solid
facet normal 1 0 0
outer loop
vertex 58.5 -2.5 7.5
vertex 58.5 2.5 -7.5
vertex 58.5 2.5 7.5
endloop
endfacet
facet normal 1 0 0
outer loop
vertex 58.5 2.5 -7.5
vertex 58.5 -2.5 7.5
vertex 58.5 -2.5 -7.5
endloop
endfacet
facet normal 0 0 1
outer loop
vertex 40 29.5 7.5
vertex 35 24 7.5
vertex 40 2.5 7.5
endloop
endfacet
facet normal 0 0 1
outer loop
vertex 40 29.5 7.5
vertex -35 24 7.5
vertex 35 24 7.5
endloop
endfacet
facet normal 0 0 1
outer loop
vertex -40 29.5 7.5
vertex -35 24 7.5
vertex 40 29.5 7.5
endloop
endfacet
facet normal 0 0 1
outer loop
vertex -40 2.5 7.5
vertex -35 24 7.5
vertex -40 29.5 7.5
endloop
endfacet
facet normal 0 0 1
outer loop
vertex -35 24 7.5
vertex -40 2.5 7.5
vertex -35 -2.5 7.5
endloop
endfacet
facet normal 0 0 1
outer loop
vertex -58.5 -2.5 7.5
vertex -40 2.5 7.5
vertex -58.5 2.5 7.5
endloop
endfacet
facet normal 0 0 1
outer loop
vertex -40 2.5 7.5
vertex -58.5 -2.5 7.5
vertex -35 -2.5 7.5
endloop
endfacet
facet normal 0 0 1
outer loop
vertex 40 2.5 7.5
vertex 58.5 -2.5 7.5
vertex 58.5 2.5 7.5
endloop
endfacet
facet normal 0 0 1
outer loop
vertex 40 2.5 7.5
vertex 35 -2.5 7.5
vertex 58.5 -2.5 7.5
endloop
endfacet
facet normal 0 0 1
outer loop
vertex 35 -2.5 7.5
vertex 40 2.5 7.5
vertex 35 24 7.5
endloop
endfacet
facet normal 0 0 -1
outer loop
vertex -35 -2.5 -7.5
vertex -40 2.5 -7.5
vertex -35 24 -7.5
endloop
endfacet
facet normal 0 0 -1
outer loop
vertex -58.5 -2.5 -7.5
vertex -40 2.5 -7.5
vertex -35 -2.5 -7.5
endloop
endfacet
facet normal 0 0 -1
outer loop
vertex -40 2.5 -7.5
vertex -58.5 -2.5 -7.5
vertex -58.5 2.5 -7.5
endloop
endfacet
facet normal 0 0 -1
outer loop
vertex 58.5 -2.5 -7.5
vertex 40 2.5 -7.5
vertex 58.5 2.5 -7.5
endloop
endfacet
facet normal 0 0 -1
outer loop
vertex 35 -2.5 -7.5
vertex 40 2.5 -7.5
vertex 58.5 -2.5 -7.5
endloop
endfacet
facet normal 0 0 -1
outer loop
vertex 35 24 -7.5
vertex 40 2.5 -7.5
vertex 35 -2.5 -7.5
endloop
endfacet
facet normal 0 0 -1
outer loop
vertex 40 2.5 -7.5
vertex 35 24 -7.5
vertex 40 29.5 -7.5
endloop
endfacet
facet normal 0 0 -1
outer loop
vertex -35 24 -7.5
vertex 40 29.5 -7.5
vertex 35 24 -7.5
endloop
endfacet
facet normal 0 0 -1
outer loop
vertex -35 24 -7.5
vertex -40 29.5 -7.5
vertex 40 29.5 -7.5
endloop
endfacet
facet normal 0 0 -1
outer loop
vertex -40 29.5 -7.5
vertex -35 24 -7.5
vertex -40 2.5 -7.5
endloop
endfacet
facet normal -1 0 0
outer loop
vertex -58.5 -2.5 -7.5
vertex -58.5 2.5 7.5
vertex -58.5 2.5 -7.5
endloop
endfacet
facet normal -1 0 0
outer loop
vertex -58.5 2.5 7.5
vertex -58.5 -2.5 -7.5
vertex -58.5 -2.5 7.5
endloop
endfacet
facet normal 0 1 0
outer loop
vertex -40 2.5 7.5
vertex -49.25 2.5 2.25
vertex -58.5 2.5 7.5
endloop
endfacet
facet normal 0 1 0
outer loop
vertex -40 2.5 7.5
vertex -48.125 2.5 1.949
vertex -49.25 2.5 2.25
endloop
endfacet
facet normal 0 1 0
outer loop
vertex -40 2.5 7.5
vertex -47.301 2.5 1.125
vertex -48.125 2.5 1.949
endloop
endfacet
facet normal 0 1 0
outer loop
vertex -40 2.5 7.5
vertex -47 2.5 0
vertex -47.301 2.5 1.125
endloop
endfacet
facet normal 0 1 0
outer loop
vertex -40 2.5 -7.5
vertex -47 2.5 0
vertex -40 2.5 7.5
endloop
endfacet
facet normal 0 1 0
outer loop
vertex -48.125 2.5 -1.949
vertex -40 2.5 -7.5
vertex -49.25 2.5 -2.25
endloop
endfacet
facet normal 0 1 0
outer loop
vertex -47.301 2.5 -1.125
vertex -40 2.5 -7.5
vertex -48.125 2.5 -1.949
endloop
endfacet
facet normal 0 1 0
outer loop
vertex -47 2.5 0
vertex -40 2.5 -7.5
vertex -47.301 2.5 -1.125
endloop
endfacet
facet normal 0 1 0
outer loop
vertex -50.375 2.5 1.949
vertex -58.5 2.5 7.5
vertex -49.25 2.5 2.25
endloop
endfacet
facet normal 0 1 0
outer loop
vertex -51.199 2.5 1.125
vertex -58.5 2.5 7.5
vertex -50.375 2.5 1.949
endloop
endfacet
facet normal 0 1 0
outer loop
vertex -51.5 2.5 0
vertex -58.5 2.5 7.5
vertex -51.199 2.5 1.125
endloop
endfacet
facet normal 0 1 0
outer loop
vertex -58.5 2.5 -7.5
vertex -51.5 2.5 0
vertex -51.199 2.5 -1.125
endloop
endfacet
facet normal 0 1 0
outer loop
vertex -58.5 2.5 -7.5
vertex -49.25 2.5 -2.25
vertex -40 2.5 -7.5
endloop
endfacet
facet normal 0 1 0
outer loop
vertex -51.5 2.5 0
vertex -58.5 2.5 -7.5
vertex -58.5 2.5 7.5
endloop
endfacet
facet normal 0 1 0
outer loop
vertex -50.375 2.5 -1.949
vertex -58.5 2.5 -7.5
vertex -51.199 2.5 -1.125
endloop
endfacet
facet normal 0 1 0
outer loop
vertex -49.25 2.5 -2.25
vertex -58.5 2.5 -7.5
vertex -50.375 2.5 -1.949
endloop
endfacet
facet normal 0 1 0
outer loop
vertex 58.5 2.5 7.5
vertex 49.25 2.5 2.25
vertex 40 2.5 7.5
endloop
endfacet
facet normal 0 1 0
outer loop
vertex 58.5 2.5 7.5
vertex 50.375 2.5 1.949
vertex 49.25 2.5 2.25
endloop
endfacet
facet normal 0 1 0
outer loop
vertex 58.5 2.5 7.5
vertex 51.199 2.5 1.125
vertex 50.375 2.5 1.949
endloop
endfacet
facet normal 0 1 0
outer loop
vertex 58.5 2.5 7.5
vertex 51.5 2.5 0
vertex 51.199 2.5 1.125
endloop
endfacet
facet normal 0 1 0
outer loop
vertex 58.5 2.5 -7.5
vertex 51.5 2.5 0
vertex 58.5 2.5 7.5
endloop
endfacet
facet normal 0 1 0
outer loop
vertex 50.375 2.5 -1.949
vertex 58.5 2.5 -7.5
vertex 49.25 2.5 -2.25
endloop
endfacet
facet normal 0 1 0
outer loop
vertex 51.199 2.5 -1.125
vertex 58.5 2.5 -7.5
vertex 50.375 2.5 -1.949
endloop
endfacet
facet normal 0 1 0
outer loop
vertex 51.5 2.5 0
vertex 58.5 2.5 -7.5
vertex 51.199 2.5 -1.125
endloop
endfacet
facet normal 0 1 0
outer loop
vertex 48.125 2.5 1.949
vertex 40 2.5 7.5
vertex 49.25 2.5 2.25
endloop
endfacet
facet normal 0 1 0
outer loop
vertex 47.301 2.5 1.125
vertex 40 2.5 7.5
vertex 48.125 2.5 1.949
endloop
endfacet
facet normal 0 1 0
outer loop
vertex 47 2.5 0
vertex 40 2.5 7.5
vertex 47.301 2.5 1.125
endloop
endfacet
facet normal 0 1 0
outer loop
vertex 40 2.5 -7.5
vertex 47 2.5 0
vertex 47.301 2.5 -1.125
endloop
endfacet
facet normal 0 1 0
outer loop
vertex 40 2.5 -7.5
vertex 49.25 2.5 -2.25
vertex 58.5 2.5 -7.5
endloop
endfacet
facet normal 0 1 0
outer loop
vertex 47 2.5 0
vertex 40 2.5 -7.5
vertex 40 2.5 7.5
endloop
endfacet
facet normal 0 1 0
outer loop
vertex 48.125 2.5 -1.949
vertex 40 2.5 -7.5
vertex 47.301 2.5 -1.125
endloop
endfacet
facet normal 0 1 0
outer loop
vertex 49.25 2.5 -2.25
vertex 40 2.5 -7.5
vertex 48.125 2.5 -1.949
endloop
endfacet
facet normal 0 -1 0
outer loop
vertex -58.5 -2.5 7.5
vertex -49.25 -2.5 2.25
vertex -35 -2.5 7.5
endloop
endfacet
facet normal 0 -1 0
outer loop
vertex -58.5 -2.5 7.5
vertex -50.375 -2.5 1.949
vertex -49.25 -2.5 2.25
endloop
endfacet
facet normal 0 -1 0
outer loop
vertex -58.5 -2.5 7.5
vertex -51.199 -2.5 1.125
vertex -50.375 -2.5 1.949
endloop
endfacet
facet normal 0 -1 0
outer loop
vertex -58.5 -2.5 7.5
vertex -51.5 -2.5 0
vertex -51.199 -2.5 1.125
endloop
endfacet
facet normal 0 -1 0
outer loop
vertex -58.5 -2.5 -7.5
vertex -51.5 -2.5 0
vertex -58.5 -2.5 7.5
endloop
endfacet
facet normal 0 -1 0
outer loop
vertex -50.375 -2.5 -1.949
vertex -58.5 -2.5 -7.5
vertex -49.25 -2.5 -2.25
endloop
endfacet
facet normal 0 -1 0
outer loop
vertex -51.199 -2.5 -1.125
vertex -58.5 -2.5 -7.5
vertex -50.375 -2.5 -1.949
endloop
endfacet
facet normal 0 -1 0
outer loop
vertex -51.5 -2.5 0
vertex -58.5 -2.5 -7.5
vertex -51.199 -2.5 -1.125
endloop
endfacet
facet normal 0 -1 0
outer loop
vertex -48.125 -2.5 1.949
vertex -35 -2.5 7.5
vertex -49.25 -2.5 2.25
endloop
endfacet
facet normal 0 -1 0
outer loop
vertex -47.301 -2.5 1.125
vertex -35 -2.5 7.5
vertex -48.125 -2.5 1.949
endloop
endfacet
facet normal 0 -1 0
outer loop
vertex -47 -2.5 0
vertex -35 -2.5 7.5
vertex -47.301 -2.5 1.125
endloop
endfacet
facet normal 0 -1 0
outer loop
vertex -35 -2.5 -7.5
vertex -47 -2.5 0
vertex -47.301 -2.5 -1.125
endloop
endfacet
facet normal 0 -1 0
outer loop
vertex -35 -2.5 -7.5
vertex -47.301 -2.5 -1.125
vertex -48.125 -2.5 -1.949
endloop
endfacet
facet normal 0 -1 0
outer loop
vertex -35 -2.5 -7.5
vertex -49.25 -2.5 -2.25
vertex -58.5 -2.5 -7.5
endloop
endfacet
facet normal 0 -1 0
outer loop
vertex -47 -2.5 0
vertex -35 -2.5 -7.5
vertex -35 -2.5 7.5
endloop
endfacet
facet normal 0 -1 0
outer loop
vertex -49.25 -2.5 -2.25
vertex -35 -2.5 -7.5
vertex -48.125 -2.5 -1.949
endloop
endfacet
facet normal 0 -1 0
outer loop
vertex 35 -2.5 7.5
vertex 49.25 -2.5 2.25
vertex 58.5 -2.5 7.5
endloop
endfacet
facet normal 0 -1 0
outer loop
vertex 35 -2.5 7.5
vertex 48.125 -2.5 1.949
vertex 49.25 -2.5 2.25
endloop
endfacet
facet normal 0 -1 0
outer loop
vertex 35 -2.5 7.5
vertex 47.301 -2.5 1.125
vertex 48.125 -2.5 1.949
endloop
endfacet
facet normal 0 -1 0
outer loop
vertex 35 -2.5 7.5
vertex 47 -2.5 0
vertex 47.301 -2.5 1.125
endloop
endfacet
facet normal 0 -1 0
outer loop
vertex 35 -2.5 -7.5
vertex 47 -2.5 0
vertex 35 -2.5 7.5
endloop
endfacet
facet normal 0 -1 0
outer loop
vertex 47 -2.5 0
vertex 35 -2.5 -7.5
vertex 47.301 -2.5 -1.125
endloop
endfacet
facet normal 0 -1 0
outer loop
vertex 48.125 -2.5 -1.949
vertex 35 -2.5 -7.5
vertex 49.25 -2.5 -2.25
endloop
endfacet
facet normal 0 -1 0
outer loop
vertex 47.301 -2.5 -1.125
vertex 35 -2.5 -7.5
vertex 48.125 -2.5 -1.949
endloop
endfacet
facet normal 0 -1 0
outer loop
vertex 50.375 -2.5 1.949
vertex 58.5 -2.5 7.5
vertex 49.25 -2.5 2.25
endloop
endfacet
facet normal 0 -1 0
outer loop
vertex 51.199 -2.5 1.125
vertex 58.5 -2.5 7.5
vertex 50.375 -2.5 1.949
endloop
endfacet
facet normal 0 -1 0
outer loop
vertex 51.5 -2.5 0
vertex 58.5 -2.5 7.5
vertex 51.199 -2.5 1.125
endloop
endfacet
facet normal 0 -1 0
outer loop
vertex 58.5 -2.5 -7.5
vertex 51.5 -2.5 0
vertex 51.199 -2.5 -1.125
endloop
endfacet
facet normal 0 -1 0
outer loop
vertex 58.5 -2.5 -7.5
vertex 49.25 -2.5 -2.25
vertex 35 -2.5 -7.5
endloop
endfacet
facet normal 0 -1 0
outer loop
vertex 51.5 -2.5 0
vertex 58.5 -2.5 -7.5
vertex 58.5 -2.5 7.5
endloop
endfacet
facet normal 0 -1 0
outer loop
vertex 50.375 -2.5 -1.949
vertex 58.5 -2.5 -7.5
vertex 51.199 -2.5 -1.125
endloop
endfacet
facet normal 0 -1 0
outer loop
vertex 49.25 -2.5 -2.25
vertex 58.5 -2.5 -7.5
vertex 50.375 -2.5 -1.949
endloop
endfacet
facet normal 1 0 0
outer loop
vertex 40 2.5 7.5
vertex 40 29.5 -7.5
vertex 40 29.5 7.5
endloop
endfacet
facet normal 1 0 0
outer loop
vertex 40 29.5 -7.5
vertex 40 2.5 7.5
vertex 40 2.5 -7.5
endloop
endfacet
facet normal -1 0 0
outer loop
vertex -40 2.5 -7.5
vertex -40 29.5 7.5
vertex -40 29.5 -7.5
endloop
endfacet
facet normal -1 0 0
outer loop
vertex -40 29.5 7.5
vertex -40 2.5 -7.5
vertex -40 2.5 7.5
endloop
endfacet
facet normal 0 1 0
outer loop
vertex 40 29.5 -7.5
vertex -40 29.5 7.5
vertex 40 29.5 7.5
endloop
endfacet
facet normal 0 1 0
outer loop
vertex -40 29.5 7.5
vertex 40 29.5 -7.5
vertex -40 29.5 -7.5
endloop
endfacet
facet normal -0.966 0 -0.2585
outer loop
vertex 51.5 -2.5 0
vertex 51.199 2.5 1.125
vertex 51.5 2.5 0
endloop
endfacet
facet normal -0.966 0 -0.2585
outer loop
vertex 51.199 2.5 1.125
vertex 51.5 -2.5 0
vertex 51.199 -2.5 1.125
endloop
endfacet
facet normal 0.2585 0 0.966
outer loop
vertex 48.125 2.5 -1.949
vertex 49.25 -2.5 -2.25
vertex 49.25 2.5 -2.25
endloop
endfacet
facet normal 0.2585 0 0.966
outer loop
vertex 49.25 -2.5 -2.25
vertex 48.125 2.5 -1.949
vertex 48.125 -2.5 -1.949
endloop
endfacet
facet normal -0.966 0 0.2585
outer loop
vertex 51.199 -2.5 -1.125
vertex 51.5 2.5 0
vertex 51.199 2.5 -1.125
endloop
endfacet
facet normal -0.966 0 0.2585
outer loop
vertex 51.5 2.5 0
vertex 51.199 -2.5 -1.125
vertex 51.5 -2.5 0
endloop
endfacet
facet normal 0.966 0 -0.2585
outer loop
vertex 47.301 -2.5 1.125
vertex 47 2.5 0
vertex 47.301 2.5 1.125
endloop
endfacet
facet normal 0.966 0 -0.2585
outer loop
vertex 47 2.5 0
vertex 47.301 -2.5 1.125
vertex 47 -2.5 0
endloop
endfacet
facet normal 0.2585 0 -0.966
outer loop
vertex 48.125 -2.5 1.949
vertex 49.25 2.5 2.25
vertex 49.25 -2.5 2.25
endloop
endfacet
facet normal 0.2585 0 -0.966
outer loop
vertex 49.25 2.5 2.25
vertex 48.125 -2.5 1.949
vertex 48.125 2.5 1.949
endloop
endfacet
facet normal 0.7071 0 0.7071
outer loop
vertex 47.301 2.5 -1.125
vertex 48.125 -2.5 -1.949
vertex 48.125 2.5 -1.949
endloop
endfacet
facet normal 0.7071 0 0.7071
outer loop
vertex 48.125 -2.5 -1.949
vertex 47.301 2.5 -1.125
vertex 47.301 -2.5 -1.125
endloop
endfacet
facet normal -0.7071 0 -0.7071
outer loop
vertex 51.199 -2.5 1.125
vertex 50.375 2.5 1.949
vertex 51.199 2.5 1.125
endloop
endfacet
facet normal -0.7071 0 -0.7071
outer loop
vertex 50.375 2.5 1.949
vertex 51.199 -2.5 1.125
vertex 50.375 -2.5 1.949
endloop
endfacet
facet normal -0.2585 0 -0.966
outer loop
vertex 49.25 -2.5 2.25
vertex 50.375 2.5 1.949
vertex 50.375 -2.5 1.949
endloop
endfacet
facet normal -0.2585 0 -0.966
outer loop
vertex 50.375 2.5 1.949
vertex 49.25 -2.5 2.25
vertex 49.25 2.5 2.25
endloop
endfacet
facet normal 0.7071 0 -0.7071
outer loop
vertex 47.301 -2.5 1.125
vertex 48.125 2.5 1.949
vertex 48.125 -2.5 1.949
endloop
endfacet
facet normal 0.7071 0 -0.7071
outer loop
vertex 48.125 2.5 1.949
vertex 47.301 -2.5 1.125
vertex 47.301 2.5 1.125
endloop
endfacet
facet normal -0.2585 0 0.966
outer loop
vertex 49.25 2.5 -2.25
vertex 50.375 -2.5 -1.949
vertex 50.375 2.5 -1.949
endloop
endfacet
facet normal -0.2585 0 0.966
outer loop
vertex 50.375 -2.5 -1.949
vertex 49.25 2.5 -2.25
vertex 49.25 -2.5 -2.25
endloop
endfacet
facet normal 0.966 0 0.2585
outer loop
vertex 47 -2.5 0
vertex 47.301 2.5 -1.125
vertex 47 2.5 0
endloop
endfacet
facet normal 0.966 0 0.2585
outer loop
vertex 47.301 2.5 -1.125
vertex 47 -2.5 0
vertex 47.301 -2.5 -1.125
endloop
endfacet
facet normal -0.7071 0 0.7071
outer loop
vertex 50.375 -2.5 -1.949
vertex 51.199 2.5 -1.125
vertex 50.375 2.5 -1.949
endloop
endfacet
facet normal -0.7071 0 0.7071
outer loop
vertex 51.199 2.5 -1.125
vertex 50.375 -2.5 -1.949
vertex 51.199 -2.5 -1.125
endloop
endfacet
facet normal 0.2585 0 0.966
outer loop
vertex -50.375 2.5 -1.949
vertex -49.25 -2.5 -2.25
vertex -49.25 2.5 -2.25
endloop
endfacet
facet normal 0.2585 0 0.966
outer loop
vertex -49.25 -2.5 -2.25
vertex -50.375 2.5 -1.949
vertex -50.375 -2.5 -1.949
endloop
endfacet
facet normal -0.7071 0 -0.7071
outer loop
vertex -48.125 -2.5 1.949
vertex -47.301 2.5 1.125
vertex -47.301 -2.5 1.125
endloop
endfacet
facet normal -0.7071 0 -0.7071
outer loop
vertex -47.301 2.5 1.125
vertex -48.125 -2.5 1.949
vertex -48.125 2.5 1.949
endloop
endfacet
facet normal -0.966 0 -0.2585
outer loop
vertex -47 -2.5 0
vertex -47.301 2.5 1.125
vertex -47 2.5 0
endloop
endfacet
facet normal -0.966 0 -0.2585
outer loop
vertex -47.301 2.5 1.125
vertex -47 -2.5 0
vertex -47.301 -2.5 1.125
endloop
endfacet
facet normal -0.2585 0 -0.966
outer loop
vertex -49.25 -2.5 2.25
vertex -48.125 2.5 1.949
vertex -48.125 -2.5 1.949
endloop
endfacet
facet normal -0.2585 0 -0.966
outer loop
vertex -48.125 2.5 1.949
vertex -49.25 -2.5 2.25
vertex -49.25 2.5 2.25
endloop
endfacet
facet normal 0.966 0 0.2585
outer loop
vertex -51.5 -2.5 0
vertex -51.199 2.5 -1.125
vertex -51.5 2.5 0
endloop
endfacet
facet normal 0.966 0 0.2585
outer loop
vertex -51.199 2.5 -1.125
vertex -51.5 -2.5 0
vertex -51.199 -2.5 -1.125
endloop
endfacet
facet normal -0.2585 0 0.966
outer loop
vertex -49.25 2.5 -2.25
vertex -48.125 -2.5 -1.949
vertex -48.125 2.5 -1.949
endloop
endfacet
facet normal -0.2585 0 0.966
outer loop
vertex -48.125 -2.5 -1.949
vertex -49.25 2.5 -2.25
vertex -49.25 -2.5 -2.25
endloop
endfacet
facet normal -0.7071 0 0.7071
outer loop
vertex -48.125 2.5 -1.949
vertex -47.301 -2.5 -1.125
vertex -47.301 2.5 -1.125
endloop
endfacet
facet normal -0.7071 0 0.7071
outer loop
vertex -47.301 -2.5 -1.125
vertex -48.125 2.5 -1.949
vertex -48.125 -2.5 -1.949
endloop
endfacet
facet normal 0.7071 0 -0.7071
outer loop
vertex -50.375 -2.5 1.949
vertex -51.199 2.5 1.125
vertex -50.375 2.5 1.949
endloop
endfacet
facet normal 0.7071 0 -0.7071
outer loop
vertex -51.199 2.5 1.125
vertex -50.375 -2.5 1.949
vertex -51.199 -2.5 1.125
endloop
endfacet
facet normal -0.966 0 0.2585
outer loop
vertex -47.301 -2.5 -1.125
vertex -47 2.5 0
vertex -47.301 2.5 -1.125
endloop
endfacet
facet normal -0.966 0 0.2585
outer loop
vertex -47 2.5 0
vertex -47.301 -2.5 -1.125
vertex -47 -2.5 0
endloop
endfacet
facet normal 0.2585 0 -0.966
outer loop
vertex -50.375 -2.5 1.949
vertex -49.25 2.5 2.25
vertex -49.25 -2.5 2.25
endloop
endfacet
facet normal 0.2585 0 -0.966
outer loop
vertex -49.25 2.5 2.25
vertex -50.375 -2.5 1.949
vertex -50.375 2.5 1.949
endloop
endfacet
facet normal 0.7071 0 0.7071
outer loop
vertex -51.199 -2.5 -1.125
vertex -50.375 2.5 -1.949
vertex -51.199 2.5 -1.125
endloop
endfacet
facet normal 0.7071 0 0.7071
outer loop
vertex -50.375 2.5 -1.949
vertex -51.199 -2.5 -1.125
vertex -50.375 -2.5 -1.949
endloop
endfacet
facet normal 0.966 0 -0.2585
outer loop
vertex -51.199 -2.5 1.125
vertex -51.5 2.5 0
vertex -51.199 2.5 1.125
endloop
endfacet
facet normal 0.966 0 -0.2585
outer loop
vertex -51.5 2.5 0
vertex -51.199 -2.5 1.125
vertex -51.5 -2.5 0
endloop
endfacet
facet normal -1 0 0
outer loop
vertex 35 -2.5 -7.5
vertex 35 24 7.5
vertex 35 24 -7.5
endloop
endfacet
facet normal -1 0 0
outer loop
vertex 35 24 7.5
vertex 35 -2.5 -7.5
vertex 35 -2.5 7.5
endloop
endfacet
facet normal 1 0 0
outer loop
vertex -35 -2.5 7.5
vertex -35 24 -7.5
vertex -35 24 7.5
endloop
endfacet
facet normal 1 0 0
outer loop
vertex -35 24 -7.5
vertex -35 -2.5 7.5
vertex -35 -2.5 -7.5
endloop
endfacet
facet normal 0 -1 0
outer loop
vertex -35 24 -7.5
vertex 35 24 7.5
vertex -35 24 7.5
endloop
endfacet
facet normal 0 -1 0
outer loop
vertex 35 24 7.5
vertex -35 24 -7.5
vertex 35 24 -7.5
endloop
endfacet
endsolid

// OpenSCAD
// file: ../../lib/brackets.scad
default_hole_d = 6.35;
default_wall_thickness = 5;
default_foot_clearance = 7;
default_bracket_height = 15;

render_helper = 1;

module bracket(
    hole_d = default_hole_d,
    wall_thickness = default_wall_thickness
) {
    $hole_d = hole_d;
    $wall_thickness = wall_thickness;
    
    children(0);
}

module u_bracket(
    width,
    depth,
    height = default_bracket_height,
    foot_clearance = default_foot_clearance
) {
    foot_width = foot_clearance * 2 + $hole_d;
    bracket_outside_width = foot_width * 2 + $wall_thickness * 2 + width;
    bracket_depth = depth + $wall_thickness;

    difference() {
        bracket_body();
        cutout();
        holes();
    }
    
    module bracket_body() {
        union() {
            cube([
                bracket_outside_width,
                $wall_thickness,
                height
            ], center = true);
            
            body_offset_y = bracket_depth / 2 - $wall_thickness / 2;
            translate([0, body_offset_y, 0])
            cube([
                width + $wall_thickness *2,
                bracket_depth,
                height
            ], center = true);
        }
    }
    
    module cutout() {
        hole_offset_y = depth / 2 - $wall_thickness / 2 - render_helper;
        translate([0, hole_offset_y, 0])
        cube([
            width,
            depth + render_helper,
            height + render_helper
        ], center = true);
    }
    module holes() {
        hole_height = $wall_thickness + render_helper;
        offset_x = width / 2 + foot_width / 2 + $wall_thickness;
        for (x = [1, -1]) {
            translate([offset_x * x, hole_height / 2, 0])
            rotate([90, 0, 0])
            cylinder(
                h = hole_height,
                d = $hole_d,
                $fn=12
            );
        }
    }
}
// main file
include <../../lib/brackets.scad>

BRACKET_WIDTH = 70;
BRACKET_DEPTH = 27;
HOLE_DIAMETER = 4.5;

bracket(hole_d = HOLE_DIAMETER)
u_bracket(BRACKET_WIDTH, BRACKET_DEPTH);
